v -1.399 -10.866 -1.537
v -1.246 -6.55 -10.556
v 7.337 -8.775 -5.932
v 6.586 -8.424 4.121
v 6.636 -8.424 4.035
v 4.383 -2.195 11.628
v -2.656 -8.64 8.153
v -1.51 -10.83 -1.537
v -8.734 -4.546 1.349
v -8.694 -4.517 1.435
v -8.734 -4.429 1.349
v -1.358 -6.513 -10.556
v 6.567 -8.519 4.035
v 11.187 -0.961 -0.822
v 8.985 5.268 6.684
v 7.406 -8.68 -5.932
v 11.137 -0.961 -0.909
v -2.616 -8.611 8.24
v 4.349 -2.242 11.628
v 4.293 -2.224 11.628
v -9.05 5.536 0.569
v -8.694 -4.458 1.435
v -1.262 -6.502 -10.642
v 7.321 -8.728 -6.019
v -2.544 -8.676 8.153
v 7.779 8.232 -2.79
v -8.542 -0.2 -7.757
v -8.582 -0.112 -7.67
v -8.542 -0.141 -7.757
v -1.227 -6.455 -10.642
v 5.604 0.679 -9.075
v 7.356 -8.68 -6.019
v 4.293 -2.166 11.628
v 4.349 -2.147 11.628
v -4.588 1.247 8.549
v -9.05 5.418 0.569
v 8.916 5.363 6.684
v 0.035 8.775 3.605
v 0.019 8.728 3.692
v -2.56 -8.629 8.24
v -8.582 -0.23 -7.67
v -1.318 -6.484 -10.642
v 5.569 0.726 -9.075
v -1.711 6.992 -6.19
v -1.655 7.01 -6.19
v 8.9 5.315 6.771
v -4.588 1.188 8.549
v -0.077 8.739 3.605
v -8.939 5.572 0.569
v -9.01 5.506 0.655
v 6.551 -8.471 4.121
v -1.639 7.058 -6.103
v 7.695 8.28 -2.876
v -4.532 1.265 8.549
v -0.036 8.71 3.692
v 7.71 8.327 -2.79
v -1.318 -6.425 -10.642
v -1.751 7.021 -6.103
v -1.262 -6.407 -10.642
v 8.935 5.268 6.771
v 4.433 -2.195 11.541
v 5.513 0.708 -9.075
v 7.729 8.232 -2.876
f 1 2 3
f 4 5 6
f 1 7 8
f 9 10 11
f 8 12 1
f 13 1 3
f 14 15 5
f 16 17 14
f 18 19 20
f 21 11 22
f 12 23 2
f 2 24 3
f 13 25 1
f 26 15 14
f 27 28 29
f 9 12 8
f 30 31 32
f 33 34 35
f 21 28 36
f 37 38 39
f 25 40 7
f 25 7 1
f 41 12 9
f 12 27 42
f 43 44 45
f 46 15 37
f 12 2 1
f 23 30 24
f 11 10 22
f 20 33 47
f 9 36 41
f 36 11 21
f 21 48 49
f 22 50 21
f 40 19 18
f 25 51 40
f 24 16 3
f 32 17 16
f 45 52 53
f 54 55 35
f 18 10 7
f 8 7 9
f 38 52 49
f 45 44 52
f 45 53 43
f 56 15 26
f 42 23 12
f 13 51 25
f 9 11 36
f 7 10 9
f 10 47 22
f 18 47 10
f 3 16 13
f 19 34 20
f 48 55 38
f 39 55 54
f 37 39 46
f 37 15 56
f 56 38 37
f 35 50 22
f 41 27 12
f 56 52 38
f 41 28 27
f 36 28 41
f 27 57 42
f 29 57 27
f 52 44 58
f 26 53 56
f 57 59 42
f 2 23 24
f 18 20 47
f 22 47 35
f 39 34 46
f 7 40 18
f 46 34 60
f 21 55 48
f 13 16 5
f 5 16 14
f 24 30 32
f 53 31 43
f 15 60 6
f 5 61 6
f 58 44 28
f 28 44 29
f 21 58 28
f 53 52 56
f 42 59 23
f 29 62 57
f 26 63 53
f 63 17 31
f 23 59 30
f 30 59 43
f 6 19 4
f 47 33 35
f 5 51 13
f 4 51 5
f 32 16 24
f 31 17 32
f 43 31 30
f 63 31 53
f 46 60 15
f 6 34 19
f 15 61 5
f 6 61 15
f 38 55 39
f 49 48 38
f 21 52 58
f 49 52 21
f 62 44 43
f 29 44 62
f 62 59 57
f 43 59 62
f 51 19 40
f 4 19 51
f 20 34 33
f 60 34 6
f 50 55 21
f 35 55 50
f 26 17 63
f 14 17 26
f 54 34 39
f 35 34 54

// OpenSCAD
// Auto-generated OpenSCAD file

    inner_points = 10*[[0.6535941979567257, -0.8423780651967159, 0.4034791044417876], [-0.45475527077662015, 0.12173810180083354, 0.8462002987147633], [1.1087469983058469, -0.09610029003660843, -0.0822218432991377], [0.00039752957250104026, 0.868015876960941, 0.360499350973838], [-0.14294424118494742, -1.0771335563343367, -0.15367112157493162], [-0.8653432213136825, -0.44874282271436344, 0.13488528436594405], [0.5553795083440791, 0.06785224566500801, -0.8988637397815697], [-0.16701947178465576, 0.6962429792849811, -0.610307333840694], [0.43334931670482335, -0.2194919314996312, 1.1541488432285814], [0.8885021170539444, 0.5267858436604762, 0.6684478954876559], [-0.12771221953520462, -0.6454687055329743, -1.0555765723285564], [-0.8501111996639396, -0.017077971913001103, -0.7670201663876808], [-0.2575336137198885, -0.8581337755119616, 0.8153017220599147], [0.7679103041582885, 0.8232048980029523, -0.2789661422409663], [0.7305959386426744, -0.8680335150915568, -0.5932217181835514], [-0.896944614521451, 0.5477096273154356, 0.05688613836460294]];

    outer_points = 10*[[-0.18922208692498615, 0.89482467771394, 0.46507464775708884], [-0.8824363020490245, -0.45759366314983685, 0.25441077470036644], [0.10154238982675173, 0.89482467771394, -0.4917200110173464], [-0.5916718252972866, -0.45759366314983685, -0.7023838840740688], [0.3933037355504648, 0.22212347338616487, 0.9212947216745572], [-0.05851877724295007, -0.6593544879502681, 0.7839884195205397], [0.8394126894652227, 0.22212347338616487, -0.5466791832035597], [0.38759017667180784, -0.6593544879502681, -0.6839854853575772], [-1.0768579152163809, 0.5215433861787323, 0.19532714781824523], [-0.7860934384646431, 0.5215433861787323, -0.76146751095619], [1.1573869332372195, -0.08080440551051582, 0.35172333264598116], [0.7055644204438046, -0.9622823668469488, 0.21441703049196367], [-0.6016466494277248, 0.15347458298643346, 0.9945139901674744], [0.053435916232416114, 0.15347458298643346, -1.161112126481694], [0.7830758127303129, 0.8394954849805947, 0.23797230352134466], [-0.23486507953500407, -1.1464446509534616, -0.07137416720712511]];

    // Convex hull for inner set (I)
    module inner_hull() {
        hull() {
            for (p = inner_points) {
                translate(p) sphere(r=0.1);
            }
        }
    }

    // Convex hull for outer set (O) minus inner hull (O \ I)
    module outer_minus_inner() {
        difference() {
            hull() {
                for (p = outer_points) {
                    translate(p) sphere(r=0.1);
                }
            }
            inner_hull(); // Subtract inner hull
        }
    }

    // Convex hull for outer set (O) minus all translated inner hulls
    module outer_minus_AllTranslationInner() {
        difference() {
            hull() {
                for (p = outer_points) {
                    translate(p) sphere(r=0.1);
                }
            }
            hull() {
                translate([0,0,50]) inner_hull();
                translate([0,0,-50]) inner_hull();
            }; // Subtract translated inner hulls
        }
    }

    // Difference between outer_minus_inner and outer_minus_AllTranslationInner
    module outer_minus_inner_diff() {
        difference() {
            // Outer minus inner
            difference() {
                hull() {
                    for (p = outer_points) {
                        translate(p) sphere(r=0.1);
                    }
                }
                inner_hull();
            }

            // Subtract Outer minus AllTranslationInner
            difference() {
                hull() {
                    for (p = outer_points) {
                        translate(p) sphere(r=0.1);
                    }
                }
                hull() {
                    translate([0,0,50]) inner_hull();
                    translate([0,0,-50]) inner_hull();
                };
            }
        }
    }

    // Rendering all with colors applied
    color([1, 0, 0, 0.5]) inner_hull(); // Transparent red
    
